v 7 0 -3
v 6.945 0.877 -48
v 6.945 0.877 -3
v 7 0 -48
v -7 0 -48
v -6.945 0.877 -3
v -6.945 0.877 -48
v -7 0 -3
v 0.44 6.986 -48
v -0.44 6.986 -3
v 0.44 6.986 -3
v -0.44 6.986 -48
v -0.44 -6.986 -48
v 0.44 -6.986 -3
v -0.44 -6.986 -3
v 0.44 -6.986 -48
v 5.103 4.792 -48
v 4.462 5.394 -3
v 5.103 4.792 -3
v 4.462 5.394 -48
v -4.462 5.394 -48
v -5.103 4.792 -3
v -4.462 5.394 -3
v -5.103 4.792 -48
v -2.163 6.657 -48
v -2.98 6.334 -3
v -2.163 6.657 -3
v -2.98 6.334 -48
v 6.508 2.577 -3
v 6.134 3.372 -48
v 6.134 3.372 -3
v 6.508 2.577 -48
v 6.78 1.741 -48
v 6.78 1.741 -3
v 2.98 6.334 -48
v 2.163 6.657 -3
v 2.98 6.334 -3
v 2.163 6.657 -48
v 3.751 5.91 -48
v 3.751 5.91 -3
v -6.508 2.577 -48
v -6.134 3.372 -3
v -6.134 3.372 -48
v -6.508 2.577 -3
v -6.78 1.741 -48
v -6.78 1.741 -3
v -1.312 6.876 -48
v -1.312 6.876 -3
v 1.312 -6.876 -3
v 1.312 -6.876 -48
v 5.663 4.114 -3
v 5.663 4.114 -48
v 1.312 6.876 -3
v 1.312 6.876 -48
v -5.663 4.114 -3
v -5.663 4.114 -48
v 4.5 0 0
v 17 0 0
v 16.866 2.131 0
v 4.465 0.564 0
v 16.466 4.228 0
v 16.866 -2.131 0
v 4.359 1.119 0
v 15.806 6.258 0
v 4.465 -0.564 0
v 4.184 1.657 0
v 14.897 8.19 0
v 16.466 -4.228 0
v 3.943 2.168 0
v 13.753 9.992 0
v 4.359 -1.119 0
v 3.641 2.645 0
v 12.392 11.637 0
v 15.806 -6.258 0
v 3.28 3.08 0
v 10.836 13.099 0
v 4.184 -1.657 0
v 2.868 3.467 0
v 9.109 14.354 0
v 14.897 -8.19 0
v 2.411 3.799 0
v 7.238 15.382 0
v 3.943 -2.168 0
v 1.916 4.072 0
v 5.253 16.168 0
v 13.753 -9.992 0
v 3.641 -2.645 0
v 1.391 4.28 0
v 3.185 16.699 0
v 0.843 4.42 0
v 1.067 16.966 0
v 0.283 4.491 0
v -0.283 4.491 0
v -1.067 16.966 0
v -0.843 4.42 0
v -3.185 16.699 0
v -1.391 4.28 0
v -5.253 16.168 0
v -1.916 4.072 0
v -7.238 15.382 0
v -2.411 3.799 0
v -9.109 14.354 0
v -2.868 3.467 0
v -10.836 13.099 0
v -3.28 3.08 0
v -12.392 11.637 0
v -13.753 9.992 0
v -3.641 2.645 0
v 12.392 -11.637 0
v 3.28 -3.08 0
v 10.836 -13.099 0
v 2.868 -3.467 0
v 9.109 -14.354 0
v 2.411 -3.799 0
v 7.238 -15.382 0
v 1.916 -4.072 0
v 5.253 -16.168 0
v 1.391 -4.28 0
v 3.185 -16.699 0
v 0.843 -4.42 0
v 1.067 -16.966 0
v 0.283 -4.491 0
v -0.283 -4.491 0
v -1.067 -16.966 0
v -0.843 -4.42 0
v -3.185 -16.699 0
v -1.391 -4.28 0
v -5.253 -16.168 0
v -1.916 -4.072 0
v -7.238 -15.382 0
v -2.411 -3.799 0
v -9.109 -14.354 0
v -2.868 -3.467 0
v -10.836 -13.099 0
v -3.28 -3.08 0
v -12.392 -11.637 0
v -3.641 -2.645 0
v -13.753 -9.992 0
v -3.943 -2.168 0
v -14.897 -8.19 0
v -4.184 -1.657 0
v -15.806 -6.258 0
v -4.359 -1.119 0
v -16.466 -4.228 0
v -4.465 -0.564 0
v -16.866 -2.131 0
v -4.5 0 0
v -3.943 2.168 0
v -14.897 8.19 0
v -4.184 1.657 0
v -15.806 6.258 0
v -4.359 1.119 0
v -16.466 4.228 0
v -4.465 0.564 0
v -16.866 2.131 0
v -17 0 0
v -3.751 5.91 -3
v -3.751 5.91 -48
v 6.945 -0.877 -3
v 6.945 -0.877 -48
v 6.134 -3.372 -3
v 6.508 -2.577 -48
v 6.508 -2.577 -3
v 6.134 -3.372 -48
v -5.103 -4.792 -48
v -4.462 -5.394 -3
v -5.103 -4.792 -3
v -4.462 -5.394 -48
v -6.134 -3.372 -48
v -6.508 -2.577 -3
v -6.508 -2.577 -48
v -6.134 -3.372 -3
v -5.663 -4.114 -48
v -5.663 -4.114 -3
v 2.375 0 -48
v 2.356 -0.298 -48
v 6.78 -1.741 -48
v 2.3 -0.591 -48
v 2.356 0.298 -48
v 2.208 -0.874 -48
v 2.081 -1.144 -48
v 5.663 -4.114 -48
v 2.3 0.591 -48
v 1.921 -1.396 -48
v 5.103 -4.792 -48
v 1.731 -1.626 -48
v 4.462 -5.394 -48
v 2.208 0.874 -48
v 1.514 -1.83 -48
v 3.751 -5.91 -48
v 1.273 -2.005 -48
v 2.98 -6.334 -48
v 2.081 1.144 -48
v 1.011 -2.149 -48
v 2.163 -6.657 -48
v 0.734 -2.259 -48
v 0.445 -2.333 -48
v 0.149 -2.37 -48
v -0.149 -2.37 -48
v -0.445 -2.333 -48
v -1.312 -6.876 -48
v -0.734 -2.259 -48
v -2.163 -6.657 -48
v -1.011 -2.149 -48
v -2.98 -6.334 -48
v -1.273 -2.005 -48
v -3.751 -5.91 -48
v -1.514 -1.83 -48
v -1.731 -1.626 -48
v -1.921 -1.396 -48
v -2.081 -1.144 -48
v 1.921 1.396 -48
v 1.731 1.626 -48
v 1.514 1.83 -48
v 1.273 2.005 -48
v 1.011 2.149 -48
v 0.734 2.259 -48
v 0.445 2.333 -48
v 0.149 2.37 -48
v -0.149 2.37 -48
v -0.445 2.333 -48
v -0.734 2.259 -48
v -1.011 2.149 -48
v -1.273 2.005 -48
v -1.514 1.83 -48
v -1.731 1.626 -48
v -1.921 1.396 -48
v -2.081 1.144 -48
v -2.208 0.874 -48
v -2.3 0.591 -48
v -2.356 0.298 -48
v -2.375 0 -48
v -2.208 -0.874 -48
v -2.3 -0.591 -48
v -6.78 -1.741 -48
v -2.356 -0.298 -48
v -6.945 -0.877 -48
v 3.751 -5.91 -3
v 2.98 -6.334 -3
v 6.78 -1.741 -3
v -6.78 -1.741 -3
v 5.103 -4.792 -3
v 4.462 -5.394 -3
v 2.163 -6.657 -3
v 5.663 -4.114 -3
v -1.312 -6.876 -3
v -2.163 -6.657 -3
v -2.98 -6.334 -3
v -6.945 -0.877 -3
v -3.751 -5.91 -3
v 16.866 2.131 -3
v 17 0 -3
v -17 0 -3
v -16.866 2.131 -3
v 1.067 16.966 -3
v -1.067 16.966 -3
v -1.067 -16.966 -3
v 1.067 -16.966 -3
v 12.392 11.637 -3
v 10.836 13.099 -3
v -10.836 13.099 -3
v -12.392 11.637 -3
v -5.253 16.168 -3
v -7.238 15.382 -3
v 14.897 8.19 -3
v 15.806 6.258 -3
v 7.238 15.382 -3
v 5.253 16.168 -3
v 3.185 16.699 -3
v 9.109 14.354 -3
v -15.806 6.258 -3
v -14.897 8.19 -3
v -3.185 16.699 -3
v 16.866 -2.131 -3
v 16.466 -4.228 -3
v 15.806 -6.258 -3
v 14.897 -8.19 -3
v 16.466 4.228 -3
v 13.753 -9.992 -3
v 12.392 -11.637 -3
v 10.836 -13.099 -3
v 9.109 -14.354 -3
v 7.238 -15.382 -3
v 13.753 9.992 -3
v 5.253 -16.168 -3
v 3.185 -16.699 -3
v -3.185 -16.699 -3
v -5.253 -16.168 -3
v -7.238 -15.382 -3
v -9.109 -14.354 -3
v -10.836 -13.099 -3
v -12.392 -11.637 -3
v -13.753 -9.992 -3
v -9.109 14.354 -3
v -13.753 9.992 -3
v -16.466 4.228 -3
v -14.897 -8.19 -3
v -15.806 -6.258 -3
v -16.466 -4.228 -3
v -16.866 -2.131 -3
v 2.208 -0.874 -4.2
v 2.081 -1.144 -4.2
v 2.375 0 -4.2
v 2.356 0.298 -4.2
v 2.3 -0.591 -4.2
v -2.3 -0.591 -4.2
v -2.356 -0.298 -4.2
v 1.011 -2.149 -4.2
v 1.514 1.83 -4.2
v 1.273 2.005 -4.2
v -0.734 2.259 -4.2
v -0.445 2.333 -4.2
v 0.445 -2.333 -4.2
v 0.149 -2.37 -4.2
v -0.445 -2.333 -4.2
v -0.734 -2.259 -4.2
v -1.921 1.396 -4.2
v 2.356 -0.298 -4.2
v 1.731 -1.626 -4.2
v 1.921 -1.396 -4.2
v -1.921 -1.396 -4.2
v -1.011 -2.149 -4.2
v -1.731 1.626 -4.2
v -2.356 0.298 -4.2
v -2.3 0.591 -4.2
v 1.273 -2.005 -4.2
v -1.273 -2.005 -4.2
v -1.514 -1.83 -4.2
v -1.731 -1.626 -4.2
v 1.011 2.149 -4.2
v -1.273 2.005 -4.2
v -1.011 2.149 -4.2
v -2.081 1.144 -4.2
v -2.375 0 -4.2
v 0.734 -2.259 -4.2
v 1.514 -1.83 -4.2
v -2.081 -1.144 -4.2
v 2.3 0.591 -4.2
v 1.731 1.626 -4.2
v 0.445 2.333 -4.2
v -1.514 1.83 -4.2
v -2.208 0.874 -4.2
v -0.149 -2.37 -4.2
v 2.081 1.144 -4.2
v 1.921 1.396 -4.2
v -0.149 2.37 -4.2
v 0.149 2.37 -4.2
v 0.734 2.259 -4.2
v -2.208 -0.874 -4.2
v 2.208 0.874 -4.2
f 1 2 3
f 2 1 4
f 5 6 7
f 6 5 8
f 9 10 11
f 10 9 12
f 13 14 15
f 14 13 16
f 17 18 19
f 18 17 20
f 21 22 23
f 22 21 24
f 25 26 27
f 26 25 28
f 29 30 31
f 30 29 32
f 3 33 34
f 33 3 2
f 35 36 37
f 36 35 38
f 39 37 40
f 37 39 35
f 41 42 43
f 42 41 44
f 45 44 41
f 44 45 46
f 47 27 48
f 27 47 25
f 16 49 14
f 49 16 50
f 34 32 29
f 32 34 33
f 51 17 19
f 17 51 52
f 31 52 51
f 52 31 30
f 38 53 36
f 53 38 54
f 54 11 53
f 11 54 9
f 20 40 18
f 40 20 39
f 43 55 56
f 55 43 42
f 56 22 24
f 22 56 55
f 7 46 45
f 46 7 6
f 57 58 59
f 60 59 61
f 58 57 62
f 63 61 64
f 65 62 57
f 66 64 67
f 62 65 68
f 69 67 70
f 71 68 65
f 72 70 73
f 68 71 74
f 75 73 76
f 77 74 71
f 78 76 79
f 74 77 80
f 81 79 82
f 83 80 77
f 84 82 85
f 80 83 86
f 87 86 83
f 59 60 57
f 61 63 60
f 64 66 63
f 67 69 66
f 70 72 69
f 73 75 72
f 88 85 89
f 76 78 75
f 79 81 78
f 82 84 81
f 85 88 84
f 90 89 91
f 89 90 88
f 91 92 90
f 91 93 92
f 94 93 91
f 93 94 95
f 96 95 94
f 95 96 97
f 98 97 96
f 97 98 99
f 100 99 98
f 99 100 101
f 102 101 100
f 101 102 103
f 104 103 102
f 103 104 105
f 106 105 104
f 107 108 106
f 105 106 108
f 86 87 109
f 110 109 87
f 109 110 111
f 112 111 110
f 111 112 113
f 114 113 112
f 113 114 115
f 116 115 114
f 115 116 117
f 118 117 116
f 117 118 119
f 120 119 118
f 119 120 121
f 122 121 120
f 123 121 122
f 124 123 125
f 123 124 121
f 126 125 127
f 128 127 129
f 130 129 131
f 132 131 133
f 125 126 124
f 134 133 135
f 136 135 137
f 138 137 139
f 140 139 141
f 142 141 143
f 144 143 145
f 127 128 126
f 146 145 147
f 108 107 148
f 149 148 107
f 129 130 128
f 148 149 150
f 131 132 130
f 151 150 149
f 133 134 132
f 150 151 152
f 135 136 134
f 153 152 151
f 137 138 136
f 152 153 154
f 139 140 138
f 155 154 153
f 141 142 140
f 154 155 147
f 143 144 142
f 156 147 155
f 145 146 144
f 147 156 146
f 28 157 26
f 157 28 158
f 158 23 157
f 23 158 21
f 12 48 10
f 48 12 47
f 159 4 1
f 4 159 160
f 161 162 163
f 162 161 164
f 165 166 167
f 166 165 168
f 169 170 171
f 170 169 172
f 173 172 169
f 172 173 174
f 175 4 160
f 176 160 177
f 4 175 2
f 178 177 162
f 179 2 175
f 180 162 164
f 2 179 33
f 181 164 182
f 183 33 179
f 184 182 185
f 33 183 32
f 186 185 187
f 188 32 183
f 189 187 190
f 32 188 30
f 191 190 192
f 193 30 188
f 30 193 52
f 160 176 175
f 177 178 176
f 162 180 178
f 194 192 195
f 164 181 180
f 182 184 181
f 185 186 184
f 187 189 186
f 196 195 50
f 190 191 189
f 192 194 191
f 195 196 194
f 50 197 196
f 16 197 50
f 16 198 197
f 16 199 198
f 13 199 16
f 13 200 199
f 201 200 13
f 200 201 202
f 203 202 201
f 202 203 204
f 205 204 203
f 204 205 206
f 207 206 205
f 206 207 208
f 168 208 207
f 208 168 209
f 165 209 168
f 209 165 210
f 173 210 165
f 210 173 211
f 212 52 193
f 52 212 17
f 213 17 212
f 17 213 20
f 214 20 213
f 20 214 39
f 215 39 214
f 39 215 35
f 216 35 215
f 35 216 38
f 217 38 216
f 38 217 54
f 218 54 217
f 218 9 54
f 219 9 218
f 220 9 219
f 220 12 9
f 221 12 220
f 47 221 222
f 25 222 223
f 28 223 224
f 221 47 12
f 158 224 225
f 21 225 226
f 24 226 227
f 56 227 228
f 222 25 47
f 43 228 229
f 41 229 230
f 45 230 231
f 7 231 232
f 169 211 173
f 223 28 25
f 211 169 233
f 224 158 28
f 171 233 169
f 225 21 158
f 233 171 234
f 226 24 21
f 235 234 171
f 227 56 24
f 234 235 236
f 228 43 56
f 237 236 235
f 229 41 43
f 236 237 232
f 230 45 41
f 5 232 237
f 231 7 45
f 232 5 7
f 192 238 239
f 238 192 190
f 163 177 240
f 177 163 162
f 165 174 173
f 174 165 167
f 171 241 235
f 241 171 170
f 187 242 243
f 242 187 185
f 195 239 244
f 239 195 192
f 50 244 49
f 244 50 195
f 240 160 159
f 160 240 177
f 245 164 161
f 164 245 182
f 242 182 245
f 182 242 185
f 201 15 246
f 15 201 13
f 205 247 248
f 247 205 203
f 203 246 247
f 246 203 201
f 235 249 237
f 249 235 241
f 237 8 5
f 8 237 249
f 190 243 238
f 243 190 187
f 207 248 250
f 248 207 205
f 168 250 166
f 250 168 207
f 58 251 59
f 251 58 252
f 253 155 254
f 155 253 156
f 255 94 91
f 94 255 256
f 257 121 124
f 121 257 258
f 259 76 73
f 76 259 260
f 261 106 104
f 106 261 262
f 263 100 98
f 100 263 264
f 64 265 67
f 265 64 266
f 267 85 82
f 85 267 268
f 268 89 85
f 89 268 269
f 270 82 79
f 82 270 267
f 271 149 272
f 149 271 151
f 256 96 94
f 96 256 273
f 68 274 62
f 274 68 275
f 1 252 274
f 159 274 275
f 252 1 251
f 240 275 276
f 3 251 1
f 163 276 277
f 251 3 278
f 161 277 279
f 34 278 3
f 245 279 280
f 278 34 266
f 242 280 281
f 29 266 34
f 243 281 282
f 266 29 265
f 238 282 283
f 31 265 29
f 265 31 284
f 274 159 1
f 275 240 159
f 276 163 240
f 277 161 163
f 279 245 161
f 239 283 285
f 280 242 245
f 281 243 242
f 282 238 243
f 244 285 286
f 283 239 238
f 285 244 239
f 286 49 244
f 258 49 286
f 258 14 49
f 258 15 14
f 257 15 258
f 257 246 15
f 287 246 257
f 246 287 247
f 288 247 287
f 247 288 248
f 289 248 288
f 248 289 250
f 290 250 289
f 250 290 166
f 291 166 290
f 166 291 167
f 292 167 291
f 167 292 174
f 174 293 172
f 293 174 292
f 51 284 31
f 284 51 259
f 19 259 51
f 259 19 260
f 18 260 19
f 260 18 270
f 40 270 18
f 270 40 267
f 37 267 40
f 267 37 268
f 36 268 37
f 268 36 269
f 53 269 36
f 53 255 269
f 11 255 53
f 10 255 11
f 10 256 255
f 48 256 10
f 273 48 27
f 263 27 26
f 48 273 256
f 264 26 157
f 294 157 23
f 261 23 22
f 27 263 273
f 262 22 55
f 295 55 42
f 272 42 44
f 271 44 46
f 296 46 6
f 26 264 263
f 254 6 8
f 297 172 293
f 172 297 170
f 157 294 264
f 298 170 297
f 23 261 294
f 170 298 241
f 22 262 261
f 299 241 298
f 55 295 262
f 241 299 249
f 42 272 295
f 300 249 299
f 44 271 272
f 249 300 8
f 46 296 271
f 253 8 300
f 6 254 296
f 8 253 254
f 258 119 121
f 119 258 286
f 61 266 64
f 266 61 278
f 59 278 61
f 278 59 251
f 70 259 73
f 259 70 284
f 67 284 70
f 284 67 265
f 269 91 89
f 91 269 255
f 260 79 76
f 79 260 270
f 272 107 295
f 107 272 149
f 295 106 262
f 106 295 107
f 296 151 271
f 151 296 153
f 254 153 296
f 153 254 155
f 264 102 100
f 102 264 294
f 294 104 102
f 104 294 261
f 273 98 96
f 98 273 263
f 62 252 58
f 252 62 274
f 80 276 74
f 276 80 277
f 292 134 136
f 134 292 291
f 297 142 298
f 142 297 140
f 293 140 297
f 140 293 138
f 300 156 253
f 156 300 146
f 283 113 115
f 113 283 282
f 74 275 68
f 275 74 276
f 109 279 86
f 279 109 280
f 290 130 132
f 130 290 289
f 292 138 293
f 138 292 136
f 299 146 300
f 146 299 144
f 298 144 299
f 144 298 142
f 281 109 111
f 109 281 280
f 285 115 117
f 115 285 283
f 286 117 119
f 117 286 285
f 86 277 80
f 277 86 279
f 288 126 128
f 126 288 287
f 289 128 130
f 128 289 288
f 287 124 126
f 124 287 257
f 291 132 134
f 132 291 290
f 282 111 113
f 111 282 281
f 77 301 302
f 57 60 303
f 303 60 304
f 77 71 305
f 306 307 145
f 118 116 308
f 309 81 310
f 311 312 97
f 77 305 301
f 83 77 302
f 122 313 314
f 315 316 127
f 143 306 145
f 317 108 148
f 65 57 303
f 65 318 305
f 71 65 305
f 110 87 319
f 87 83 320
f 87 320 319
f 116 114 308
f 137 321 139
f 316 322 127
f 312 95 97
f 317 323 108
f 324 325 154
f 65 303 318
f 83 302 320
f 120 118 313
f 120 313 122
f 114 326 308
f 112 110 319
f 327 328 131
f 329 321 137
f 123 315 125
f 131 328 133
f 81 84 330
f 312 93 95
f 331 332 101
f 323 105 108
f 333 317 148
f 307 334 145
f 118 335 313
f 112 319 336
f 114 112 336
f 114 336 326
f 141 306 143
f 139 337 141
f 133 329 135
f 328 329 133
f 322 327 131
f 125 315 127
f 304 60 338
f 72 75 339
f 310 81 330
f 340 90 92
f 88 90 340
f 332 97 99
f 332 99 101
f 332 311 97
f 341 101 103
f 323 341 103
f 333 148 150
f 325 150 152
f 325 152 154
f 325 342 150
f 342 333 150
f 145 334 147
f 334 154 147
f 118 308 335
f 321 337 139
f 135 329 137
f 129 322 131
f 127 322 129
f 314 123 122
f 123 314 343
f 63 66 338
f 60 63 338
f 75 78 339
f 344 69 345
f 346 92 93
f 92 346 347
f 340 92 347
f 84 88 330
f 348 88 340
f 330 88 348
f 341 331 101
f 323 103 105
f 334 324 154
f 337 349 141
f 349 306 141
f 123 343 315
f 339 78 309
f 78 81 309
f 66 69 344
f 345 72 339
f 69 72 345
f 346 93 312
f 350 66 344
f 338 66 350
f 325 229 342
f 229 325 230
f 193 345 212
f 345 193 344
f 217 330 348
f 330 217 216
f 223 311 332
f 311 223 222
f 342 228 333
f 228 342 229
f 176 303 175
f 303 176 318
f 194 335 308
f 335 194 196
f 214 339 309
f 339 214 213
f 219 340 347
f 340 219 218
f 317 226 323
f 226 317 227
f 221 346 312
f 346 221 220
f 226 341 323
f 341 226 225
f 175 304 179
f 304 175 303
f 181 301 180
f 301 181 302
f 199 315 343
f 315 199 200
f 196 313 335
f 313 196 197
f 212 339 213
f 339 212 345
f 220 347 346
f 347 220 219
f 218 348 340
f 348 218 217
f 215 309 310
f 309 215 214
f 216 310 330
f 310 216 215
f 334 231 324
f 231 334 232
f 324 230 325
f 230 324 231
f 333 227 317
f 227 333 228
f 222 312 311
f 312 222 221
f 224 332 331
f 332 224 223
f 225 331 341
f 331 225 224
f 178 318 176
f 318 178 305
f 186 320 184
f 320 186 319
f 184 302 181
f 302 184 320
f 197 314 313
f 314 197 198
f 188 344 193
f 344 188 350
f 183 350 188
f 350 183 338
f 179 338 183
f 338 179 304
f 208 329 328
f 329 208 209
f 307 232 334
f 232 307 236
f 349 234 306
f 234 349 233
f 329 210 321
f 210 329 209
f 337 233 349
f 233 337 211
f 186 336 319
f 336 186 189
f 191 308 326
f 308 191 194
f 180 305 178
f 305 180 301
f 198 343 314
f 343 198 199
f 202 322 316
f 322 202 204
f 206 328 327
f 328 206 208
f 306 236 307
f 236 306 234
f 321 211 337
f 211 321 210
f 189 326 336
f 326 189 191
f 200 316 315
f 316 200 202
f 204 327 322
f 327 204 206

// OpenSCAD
$fn = 50;


difference() {
	union() {
		translate(v = [0, 0, -48.0000000000]) {
			cylinder(h = 48, r = 7.0000000000);
		}
		translate(v = [0, 0, -3.0000000000]) {
			cylinder(h = 3, r = 17.0000000000);
		}
	}
	union() {
		translate(v = [0, 0, 0]) {
			rotate(a = [0, 0, 0]) {
				difference() {
					union() {
						#translate(v = [0, 0, -48.0000000000]) {
							cylinder(h = 48, r = 2.2500000000);
						}
						#translate(v = [0, 0, -4.2000000000]) {
							cylinder(h = 4.2000000000, r = 7.0000000000, r1 = 2.3750000000, r2 = 4.5000000000);
						}
						#translate(v = [0, 0, -48.0000000000]) {
							cylinder(h = 48, r = 2.3750000000);
						}
						#translate(v = [0, 0, -48.0000000000]) {
							cylinder(h = 48, r = 2.2500000000);
						}
					}
					union();
				}
			}
		}
	}
}
